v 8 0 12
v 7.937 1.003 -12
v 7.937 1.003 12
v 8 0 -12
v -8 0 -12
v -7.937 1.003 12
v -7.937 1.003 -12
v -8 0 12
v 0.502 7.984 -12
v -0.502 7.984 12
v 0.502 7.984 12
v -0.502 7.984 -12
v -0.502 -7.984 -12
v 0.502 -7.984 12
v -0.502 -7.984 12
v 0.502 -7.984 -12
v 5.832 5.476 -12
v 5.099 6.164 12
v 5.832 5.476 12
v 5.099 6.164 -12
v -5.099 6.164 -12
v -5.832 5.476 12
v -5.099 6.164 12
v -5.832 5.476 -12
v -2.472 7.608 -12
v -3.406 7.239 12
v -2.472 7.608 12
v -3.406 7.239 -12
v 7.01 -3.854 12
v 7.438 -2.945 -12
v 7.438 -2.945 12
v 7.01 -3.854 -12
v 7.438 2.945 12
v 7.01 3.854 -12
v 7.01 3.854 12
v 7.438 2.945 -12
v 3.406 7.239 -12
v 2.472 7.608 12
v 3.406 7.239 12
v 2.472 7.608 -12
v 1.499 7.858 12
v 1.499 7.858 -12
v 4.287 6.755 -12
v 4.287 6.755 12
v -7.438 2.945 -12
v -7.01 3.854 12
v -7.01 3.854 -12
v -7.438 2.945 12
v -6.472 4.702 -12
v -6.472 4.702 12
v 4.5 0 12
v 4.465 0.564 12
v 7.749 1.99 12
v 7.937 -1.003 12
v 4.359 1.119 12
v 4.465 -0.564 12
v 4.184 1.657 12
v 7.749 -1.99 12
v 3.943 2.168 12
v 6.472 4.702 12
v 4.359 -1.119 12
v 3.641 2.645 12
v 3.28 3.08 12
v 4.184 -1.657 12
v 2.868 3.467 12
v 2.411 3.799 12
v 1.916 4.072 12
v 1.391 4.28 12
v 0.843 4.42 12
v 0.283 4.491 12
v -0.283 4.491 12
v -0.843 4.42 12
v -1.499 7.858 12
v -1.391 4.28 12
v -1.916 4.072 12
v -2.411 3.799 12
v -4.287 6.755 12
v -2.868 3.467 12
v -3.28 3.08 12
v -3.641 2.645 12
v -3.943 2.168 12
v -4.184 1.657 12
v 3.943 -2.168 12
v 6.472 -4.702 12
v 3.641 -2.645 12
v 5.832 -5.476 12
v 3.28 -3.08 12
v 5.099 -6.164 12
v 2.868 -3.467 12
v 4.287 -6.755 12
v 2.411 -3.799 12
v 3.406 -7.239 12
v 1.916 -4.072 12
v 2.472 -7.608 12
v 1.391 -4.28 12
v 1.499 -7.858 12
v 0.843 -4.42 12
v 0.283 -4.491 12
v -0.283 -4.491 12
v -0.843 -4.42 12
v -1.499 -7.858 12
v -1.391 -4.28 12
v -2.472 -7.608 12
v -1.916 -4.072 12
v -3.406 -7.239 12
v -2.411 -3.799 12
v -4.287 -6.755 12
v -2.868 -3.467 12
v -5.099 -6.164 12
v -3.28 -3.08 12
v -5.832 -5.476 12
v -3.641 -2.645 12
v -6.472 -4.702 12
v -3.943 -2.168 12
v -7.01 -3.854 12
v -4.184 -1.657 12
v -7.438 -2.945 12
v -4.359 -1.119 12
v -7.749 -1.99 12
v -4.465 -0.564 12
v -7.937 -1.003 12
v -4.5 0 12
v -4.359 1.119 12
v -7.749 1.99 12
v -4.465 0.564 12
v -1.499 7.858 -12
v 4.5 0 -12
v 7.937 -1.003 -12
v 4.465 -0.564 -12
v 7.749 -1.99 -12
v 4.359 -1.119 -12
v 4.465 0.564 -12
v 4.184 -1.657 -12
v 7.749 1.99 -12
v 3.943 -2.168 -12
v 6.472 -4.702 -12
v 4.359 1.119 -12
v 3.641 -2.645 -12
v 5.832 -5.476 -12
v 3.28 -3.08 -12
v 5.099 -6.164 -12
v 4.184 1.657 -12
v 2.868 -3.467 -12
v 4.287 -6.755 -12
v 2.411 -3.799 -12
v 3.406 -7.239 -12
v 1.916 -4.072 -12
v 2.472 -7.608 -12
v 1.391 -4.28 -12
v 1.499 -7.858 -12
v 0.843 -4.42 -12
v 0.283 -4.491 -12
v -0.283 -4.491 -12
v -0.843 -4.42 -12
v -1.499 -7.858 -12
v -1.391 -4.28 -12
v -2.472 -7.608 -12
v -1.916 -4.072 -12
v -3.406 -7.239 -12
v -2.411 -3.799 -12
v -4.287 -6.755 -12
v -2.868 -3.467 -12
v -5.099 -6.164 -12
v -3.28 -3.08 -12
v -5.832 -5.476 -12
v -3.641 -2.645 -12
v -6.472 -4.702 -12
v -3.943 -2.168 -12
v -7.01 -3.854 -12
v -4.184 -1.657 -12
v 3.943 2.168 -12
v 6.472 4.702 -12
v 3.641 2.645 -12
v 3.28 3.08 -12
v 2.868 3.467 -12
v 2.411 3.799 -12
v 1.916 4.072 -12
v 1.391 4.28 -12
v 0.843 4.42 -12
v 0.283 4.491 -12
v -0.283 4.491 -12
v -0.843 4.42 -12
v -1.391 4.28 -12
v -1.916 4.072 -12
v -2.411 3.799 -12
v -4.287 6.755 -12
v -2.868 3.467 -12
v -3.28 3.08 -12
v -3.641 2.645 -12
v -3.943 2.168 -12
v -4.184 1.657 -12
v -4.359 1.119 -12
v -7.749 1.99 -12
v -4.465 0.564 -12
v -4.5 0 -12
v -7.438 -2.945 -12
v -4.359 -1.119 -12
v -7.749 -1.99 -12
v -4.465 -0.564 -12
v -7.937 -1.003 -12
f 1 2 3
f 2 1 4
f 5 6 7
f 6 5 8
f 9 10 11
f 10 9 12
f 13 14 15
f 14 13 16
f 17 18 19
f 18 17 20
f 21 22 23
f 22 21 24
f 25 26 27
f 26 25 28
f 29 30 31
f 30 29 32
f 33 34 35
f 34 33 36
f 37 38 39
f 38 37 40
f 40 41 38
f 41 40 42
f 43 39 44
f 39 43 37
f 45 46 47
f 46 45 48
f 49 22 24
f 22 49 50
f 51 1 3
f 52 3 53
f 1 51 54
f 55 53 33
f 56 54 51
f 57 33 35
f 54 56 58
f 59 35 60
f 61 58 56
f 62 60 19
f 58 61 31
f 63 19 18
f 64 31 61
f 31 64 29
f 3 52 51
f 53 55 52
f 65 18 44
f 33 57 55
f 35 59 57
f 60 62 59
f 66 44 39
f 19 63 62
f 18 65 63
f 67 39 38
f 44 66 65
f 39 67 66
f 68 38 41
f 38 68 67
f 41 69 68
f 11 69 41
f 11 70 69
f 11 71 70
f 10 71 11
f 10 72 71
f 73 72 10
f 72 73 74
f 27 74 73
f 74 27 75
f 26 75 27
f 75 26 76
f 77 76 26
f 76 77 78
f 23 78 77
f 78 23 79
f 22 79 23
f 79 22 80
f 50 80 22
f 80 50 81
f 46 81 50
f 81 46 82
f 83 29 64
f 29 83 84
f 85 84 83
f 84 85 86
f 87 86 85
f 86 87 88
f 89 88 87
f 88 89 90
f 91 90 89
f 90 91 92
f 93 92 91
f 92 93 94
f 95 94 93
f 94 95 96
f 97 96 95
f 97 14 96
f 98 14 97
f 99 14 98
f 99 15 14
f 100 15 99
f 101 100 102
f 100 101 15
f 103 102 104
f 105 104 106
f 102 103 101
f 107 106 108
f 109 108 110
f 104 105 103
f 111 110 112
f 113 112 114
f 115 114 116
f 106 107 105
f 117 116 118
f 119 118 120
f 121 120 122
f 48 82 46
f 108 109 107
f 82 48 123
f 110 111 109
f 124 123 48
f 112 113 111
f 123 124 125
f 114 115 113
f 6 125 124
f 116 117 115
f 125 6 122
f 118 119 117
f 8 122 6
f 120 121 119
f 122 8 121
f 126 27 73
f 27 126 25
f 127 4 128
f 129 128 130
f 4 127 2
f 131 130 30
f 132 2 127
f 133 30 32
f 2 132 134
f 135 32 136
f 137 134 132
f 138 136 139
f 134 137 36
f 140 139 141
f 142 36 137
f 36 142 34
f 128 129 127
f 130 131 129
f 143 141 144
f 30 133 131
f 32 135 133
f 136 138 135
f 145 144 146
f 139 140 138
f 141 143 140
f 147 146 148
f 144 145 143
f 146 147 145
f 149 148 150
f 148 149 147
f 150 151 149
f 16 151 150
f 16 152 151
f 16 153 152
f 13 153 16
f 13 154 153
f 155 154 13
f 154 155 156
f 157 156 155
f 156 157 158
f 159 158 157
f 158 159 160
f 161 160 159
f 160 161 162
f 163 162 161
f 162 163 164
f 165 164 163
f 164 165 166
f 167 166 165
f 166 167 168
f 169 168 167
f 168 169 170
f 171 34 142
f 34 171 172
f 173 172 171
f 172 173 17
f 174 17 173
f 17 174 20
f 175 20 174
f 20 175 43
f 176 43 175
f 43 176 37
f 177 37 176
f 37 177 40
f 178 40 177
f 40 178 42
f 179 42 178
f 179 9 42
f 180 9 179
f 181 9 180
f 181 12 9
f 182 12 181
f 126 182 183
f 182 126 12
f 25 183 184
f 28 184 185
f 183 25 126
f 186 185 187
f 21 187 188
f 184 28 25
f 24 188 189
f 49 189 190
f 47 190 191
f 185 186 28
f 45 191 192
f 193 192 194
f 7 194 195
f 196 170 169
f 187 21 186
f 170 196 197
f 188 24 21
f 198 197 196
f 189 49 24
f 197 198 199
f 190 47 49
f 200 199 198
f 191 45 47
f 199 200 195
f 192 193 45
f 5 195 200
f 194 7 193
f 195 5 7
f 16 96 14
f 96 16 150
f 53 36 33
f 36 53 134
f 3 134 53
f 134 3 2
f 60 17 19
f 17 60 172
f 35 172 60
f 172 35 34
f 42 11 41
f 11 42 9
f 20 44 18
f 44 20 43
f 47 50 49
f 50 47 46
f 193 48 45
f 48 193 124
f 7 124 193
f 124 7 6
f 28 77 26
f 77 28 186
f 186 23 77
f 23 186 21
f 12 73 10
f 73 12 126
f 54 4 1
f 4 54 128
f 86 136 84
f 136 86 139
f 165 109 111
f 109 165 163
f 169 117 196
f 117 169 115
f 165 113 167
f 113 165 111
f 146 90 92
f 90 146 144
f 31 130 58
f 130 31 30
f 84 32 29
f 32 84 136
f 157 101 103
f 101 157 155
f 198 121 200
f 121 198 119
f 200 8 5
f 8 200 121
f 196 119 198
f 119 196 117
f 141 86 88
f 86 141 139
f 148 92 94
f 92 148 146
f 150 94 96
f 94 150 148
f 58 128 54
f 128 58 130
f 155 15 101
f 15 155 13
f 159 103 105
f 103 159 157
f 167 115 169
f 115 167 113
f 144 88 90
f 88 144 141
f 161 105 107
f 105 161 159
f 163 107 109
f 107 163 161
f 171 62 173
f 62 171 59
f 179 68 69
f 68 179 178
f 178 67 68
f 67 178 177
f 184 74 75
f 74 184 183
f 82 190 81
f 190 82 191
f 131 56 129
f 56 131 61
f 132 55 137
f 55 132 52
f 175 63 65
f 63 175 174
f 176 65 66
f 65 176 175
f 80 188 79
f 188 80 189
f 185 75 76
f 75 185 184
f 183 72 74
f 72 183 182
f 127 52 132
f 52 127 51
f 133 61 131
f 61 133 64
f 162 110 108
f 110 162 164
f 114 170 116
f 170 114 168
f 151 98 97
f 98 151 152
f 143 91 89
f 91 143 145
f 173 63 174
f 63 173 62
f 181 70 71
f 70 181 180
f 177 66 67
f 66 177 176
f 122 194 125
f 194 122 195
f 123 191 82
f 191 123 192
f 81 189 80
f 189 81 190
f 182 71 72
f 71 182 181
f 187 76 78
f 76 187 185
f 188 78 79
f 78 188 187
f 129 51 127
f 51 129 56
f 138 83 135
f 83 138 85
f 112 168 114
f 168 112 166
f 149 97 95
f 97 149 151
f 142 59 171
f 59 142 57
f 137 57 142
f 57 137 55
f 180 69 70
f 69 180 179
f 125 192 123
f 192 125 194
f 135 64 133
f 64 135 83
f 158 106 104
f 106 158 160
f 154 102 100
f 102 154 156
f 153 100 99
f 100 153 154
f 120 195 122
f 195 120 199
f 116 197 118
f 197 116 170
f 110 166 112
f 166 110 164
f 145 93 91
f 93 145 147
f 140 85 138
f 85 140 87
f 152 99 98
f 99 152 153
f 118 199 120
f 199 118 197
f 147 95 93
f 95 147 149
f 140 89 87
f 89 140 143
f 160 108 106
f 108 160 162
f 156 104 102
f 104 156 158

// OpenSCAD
$fn = 50;


difference() {
	union() {
		translate(v = [0, 0, -12.0000000000]) {
			cylinder(h = 24, r = 8.0000000000);
		}
	}
	union() {
		translate(v = [0, 0, -100.0000000000]) {
			cylinder(h = 200, r = 4.5000000000);
		}
	}
}
